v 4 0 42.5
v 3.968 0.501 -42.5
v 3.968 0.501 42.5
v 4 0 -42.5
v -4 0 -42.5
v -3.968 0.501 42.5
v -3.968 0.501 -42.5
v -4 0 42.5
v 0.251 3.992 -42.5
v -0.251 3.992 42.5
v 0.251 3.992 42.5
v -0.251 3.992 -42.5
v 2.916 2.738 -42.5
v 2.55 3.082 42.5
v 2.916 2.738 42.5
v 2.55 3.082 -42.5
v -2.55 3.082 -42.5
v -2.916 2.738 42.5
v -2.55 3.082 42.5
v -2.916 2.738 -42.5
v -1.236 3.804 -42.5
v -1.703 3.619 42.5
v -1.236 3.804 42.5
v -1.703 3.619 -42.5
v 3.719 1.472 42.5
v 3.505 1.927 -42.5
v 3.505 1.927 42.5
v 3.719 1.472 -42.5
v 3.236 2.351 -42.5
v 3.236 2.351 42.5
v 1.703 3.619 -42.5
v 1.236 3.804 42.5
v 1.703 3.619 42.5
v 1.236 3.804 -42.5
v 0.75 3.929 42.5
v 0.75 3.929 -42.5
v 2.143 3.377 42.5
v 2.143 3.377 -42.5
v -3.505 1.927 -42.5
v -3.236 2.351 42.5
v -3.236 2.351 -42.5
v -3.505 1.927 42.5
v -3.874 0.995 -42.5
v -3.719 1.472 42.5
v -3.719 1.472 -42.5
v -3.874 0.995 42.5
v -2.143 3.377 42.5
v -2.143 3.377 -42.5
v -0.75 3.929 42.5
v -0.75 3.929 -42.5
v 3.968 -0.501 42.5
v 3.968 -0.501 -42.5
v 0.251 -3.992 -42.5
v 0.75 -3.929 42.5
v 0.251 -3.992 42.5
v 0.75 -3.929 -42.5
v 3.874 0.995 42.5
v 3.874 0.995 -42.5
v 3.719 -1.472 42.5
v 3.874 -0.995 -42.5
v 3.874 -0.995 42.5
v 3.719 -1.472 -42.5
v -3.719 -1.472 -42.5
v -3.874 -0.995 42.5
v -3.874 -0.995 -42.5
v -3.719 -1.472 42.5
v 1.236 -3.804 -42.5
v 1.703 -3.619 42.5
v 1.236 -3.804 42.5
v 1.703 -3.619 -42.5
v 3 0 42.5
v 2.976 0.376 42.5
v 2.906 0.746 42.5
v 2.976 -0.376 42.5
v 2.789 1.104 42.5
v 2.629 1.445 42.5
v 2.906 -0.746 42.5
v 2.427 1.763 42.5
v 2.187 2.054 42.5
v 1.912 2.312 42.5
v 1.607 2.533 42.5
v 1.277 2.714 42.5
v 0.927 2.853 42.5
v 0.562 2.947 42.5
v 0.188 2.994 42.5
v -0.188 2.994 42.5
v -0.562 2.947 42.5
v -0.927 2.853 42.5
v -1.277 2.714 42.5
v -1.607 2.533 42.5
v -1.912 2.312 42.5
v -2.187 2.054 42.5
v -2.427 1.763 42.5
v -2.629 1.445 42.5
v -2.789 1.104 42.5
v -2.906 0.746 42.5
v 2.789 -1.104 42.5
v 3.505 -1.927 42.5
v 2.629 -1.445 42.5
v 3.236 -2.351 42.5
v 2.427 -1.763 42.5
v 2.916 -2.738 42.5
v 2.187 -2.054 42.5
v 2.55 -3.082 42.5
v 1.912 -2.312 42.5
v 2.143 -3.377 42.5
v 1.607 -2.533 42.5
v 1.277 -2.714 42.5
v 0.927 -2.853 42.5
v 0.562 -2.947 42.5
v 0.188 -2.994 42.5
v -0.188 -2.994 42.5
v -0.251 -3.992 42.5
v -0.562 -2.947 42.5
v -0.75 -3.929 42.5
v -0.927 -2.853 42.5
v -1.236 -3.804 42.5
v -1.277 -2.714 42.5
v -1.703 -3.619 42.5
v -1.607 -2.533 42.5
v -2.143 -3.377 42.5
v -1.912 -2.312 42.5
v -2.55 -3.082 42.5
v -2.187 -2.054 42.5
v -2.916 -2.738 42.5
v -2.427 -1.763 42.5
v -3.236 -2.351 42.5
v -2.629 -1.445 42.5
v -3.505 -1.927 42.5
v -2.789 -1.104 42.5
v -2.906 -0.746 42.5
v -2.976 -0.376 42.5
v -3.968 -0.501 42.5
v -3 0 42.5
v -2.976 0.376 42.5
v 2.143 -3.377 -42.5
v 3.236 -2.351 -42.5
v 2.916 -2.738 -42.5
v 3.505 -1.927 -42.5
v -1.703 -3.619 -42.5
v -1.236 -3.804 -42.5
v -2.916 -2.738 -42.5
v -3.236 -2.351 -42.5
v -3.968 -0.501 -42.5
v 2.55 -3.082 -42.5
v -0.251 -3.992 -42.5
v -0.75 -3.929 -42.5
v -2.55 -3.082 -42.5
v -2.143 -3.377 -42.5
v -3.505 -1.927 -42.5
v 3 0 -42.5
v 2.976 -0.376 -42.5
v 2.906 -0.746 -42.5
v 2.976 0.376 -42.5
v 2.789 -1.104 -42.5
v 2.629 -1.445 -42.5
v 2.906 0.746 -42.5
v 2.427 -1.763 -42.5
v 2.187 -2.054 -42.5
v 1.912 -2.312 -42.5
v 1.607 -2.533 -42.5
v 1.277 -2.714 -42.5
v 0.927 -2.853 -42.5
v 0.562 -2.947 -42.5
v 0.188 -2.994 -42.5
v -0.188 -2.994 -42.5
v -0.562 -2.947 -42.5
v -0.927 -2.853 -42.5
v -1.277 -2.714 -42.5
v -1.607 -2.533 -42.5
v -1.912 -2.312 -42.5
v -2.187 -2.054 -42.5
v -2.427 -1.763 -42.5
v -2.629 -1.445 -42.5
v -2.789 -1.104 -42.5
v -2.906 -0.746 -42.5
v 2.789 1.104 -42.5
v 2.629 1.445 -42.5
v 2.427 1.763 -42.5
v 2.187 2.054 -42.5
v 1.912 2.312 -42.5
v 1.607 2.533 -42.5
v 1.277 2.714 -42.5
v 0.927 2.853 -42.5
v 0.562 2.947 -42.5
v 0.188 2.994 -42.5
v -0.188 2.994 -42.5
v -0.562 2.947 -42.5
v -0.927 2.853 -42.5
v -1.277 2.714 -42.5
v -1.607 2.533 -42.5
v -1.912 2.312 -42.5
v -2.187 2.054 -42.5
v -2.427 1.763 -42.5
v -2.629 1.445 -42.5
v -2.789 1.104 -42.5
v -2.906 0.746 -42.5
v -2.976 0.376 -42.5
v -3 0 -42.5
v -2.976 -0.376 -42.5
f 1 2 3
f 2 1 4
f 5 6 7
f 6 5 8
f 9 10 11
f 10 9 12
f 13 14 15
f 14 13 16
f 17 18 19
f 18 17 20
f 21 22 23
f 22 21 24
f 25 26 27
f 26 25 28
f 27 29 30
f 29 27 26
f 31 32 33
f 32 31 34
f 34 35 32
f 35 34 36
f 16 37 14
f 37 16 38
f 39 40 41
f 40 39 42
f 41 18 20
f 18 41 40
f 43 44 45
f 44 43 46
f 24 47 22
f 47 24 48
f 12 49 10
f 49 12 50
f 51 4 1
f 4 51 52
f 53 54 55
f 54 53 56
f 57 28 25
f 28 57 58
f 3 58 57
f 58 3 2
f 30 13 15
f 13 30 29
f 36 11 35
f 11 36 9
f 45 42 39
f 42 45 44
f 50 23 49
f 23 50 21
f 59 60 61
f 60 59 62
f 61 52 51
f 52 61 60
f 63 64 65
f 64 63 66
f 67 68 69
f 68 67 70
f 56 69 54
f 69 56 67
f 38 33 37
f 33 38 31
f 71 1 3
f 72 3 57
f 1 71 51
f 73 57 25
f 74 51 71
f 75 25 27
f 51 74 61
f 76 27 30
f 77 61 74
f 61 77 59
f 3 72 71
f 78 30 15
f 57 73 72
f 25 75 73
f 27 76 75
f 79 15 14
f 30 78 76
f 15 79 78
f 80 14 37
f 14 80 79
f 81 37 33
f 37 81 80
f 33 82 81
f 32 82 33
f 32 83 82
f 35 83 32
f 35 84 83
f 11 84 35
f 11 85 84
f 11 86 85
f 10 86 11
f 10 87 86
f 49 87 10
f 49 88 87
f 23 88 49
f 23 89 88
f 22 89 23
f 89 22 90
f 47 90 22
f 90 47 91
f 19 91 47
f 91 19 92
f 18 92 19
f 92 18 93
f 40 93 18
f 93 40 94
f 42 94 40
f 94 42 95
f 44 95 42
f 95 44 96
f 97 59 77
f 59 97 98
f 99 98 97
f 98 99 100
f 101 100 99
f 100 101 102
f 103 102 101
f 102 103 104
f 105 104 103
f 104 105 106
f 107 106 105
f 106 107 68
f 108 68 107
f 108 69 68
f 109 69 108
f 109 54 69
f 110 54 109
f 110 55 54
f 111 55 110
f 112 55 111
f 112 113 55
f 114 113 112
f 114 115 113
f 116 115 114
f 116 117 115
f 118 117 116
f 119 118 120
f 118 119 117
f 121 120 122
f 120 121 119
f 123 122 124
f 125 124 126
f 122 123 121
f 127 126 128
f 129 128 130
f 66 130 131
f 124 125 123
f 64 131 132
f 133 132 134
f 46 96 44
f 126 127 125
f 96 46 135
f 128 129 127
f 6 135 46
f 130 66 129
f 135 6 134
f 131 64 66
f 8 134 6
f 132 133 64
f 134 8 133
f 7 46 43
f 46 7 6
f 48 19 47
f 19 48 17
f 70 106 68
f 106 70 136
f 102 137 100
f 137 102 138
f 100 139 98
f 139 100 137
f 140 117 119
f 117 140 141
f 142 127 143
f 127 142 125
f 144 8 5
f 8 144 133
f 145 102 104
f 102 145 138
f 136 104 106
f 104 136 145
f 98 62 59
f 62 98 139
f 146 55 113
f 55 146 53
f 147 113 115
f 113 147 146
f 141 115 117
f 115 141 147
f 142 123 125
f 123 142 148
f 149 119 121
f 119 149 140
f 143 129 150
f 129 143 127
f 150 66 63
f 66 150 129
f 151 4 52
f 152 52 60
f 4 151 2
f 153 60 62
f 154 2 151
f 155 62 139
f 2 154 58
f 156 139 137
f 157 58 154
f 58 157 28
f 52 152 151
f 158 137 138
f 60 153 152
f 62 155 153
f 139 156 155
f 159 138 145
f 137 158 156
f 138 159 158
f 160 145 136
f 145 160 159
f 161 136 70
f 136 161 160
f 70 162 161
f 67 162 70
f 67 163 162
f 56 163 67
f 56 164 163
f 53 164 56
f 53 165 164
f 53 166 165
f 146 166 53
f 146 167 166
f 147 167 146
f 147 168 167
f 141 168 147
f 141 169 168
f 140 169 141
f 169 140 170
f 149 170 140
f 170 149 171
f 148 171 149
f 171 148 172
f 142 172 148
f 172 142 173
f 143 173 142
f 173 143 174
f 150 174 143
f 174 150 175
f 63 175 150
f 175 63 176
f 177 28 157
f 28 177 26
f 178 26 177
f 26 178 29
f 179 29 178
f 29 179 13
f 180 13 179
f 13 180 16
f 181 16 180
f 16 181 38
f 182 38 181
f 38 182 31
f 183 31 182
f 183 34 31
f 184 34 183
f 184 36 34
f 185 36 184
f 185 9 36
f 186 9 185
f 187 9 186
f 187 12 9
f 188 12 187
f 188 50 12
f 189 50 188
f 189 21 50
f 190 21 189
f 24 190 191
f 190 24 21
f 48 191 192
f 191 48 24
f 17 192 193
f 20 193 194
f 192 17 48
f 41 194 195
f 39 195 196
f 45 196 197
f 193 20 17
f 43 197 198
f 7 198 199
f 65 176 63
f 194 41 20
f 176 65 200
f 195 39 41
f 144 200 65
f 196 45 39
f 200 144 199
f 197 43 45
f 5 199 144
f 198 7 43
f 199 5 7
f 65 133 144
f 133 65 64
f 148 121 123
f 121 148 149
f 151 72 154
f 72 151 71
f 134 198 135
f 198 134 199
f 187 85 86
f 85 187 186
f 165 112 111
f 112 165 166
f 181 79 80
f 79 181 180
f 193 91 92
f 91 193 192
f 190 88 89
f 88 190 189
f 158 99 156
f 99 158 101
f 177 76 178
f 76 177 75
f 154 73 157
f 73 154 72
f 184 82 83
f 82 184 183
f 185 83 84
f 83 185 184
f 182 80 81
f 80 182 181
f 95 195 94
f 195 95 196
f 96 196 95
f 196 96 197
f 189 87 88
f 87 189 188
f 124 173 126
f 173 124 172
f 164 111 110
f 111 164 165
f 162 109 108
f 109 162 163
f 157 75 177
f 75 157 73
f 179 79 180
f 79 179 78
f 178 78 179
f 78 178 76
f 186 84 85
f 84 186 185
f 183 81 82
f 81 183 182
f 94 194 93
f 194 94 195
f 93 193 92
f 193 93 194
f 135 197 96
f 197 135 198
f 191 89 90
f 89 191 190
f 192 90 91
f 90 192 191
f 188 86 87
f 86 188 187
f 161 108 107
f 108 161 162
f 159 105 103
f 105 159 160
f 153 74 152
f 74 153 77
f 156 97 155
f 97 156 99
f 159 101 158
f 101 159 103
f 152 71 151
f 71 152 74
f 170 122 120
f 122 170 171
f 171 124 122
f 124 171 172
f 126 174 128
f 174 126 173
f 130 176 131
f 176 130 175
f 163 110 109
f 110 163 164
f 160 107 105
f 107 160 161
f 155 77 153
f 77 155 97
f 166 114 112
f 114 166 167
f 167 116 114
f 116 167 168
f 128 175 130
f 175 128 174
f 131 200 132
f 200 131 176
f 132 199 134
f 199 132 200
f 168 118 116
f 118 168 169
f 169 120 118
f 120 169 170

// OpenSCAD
$fn = 50;


difference() {
	union() {
		translate(v = [0, 0, -42.5000000000]) {
			cylinder(h = 85, r = 4.0000000000);
		}
	}
	union() {
		translate(v = [0, 0, -100.0000000000]) {
			cylinder(h = 200, r = 3.0000000000);
		}
	}
}
